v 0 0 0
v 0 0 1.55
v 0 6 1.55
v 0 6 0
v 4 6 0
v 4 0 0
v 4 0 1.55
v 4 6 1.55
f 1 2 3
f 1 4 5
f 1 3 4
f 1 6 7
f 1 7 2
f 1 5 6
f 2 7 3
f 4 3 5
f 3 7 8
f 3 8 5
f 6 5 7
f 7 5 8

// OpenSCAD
/* Warning, this is a very basic generator with a lot of approximation 
input data : [LQFN, LYA, 4x6x1.55mm, 28, , A, C04-01294A]
generated by com.zoubworld.electronics.cad.model3d.Basic
Date : Sun Feb 15 10:50:49 CET 2026
*/

//body
color("black")
translate([0,0,0])
cube([4.0,6.0,1.55], center=false);
